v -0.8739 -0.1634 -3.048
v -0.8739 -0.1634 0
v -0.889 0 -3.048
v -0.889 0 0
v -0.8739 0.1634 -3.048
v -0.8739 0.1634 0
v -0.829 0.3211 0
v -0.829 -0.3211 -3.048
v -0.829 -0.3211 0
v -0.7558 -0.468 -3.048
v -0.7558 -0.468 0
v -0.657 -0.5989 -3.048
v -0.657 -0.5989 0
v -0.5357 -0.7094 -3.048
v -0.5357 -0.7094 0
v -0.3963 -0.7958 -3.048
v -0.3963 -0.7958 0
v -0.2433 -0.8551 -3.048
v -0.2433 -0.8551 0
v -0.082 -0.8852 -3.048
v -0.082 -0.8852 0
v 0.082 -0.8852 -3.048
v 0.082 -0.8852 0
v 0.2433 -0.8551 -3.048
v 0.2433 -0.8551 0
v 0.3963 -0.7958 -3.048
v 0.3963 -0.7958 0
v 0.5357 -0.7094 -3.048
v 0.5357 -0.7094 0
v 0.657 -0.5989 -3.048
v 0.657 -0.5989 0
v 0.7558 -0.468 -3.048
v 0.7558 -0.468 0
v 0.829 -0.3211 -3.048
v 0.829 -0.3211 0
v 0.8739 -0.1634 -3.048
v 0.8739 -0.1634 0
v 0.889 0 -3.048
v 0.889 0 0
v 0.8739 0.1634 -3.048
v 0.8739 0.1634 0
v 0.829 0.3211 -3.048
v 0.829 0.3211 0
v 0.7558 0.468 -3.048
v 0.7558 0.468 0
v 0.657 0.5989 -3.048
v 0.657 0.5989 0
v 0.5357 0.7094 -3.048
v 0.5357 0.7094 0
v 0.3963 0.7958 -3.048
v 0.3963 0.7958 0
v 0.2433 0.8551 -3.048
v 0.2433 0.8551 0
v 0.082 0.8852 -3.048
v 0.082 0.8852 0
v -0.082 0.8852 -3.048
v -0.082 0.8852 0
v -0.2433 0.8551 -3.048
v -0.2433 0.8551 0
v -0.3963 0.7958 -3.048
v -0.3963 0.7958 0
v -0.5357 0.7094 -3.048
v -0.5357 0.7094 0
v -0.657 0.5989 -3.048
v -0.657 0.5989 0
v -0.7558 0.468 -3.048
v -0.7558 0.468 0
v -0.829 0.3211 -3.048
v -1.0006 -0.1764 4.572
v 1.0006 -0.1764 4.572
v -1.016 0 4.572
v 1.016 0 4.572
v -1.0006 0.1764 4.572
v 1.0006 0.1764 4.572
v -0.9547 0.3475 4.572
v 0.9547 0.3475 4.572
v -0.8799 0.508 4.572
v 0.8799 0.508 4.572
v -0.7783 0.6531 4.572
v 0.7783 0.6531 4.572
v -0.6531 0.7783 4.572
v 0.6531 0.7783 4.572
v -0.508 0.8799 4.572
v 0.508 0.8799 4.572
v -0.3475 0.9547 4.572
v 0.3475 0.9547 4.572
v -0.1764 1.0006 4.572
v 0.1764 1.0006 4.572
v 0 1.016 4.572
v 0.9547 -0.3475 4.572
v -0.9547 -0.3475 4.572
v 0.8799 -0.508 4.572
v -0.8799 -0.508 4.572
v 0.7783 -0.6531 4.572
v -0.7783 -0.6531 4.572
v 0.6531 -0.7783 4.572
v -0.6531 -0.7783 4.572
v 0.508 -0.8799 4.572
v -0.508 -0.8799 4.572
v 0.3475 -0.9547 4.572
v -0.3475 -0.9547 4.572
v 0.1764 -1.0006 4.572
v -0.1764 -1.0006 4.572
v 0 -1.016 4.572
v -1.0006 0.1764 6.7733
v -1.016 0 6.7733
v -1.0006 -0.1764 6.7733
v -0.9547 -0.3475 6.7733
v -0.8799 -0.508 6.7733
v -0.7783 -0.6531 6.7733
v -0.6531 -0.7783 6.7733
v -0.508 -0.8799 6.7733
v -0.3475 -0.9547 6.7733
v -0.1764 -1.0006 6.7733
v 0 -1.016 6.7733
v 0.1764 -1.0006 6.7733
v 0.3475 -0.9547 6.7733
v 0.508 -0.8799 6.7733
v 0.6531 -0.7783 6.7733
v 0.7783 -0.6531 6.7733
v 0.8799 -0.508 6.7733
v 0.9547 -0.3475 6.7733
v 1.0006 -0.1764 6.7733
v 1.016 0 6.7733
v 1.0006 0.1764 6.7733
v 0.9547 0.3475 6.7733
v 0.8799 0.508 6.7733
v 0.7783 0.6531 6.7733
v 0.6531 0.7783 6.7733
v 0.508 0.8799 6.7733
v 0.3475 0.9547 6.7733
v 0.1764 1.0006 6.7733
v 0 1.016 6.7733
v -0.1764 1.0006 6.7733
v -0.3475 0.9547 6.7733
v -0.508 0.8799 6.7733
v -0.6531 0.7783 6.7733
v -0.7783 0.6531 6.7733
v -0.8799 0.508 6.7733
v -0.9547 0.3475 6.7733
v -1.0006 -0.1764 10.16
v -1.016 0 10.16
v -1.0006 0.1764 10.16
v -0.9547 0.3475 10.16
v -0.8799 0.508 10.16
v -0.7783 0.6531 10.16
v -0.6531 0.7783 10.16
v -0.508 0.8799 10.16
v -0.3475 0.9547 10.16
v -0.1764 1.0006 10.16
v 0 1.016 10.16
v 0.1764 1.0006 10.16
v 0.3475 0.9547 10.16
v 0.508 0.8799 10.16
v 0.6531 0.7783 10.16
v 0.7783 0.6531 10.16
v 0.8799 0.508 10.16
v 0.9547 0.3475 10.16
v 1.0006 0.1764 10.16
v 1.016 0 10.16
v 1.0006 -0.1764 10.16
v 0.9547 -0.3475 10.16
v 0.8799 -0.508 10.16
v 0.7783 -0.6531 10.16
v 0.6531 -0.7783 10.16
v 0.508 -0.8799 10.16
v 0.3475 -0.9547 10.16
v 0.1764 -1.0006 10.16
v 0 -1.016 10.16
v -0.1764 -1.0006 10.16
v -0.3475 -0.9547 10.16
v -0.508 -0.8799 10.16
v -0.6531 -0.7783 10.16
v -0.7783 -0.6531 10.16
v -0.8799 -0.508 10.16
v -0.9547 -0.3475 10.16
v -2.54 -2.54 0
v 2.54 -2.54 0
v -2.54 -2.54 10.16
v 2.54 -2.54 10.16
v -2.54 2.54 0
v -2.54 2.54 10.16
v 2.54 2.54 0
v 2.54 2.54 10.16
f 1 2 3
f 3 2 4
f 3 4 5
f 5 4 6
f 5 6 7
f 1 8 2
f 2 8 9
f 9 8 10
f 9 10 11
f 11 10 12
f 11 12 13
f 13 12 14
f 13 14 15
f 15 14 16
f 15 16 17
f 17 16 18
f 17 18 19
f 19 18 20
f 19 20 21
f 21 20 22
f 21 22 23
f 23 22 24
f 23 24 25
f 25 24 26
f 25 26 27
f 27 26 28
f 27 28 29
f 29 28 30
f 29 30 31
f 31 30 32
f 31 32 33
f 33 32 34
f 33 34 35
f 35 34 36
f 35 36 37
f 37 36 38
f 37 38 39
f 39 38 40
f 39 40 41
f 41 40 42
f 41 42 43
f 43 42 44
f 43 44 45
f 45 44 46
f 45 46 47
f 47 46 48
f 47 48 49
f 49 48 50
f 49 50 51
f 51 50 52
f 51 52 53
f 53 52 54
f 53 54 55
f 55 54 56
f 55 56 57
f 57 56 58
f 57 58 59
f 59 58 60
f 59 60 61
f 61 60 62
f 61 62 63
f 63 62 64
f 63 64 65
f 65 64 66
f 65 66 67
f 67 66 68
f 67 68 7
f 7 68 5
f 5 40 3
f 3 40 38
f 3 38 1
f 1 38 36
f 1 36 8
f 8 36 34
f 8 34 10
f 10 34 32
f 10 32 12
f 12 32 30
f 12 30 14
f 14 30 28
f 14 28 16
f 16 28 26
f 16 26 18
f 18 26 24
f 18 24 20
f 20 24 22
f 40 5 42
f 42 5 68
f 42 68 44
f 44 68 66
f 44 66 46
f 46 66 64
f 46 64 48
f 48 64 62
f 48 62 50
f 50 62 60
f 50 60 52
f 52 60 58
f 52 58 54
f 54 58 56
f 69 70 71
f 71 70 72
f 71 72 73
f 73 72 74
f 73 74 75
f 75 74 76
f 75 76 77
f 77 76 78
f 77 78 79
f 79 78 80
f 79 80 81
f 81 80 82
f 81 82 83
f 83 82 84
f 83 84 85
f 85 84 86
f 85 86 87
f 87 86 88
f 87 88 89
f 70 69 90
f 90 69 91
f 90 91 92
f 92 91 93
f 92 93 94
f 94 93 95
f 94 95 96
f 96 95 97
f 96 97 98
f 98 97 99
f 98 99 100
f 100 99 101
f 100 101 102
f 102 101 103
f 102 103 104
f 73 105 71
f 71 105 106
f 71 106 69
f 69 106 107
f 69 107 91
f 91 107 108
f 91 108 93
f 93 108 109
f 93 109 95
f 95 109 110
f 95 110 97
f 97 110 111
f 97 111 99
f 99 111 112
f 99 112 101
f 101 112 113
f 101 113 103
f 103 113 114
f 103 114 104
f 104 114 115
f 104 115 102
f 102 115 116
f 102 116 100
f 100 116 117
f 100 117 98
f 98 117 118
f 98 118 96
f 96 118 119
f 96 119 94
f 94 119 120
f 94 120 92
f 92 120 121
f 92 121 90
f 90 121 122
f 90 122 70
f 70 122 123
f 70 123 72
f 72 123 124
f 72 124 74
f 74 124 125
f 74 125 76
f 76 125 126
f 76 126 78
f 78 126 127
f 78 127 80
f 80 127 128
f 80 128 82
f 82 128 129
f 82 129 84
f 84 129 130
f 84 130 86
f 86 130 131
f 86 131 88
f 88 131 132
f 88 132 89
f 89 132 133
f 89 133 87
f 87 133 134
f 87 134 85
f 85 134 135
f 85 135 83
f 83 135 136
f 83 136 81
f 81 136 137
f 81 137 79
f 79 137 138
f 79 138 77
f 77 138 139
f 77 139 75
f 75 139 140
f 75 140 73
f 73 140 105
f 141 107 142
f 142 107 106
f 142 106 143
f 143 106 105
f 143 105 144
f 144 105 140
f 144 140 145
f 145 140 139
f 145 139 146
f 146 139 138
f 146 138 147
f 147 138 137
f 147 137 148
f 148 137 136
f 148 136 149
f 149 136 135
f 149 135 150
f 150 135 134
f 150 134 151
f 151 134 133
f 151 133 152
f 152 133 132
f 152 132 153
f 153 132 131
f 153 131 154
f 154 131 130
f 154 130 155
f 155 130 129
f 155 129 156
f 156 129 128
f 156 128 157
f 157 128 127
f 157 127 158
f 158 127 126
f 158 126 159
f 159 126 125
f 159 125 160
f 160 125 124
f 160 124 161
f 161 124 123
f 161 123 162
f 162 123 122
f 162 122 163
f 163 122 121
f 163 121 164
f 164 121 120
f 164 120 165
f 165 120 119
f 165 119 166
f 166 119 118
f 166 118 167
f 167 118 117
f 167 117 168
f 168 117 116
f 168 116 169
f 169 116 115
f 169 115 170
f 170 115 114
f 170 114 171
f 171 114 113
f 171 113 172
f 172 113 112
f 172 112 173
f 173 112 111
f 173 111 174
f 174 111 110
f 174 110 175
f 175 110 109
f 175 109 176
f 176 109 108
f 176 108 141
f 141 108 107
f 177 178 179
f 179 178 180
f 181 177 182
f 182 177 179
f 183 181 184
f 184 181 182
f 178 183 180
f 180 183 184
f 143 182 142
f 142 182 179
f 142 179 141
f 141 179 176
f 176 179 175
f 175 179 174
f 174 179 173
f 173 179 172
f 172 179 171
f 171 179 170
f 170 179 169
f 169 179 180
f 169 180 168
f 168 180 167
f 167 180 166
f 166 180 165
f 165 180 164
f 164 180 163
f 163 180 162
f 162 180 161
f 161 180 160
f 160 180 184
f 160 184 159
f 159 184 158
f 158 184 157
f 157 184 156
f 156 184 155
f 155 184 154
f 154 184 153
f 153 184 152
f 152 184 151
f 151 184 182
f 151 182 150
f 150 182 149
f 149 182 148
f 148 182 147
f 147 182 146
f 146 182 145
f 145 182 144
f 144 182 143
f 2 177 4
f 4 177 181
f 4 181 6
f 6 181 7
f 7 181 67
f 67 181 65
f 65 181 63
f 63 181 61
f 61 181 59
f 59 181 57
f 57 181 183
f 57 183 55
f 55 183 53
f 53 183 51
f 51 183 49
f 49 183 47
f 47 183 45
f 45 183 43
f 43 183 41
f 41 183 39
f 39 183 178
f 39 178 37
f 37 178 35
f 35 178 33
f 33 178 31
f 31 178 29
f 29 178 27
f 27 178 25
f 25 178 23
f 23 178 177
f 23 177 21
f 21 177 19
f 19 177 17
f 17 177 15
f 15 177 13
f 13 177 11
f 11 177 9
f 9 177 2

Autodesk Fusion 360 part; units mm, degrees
sketch "Sketch1" plane through (0, 0, 0) normal (0, 0, 1) x (1, 0, 0)
  circle A0 centre (0, 0) radius 1.016
  circle A1 centre (0, 0) radius 0.889
  line L0 (2.54, 2.54) -> (-2.54, 2.54)
  line L1 (-2.54, 2.54) -> (-2.54, -2.54)
  line L2 (-2.54, -2.54) -> (2.54, -2.54)
  line L3 (2.54, -2.54) -> (2.54, 2.54)
  line L4 (2.54, 2.54) -> (-2.54, -2.54) construction
  line L5 (-2.54, 2.54) -> (2.54, -2.54) construction
  dimension "d2" = 2.032
  dimension "d7" = 1.778
  dimension "d10" = 5.08
  dimension "d11" = 5.08
extrude "Extrude1" add sketch "Sketch1" along normal blind 10.16 contours L0 L1 L2 L3
extrude "Extrude2" add sketch "Sketch1" along normal blind 4.572 contours A0 | A1
extrude "Extrude3" add sketch "Sketch1" against normal blind 3.048 contours A1
